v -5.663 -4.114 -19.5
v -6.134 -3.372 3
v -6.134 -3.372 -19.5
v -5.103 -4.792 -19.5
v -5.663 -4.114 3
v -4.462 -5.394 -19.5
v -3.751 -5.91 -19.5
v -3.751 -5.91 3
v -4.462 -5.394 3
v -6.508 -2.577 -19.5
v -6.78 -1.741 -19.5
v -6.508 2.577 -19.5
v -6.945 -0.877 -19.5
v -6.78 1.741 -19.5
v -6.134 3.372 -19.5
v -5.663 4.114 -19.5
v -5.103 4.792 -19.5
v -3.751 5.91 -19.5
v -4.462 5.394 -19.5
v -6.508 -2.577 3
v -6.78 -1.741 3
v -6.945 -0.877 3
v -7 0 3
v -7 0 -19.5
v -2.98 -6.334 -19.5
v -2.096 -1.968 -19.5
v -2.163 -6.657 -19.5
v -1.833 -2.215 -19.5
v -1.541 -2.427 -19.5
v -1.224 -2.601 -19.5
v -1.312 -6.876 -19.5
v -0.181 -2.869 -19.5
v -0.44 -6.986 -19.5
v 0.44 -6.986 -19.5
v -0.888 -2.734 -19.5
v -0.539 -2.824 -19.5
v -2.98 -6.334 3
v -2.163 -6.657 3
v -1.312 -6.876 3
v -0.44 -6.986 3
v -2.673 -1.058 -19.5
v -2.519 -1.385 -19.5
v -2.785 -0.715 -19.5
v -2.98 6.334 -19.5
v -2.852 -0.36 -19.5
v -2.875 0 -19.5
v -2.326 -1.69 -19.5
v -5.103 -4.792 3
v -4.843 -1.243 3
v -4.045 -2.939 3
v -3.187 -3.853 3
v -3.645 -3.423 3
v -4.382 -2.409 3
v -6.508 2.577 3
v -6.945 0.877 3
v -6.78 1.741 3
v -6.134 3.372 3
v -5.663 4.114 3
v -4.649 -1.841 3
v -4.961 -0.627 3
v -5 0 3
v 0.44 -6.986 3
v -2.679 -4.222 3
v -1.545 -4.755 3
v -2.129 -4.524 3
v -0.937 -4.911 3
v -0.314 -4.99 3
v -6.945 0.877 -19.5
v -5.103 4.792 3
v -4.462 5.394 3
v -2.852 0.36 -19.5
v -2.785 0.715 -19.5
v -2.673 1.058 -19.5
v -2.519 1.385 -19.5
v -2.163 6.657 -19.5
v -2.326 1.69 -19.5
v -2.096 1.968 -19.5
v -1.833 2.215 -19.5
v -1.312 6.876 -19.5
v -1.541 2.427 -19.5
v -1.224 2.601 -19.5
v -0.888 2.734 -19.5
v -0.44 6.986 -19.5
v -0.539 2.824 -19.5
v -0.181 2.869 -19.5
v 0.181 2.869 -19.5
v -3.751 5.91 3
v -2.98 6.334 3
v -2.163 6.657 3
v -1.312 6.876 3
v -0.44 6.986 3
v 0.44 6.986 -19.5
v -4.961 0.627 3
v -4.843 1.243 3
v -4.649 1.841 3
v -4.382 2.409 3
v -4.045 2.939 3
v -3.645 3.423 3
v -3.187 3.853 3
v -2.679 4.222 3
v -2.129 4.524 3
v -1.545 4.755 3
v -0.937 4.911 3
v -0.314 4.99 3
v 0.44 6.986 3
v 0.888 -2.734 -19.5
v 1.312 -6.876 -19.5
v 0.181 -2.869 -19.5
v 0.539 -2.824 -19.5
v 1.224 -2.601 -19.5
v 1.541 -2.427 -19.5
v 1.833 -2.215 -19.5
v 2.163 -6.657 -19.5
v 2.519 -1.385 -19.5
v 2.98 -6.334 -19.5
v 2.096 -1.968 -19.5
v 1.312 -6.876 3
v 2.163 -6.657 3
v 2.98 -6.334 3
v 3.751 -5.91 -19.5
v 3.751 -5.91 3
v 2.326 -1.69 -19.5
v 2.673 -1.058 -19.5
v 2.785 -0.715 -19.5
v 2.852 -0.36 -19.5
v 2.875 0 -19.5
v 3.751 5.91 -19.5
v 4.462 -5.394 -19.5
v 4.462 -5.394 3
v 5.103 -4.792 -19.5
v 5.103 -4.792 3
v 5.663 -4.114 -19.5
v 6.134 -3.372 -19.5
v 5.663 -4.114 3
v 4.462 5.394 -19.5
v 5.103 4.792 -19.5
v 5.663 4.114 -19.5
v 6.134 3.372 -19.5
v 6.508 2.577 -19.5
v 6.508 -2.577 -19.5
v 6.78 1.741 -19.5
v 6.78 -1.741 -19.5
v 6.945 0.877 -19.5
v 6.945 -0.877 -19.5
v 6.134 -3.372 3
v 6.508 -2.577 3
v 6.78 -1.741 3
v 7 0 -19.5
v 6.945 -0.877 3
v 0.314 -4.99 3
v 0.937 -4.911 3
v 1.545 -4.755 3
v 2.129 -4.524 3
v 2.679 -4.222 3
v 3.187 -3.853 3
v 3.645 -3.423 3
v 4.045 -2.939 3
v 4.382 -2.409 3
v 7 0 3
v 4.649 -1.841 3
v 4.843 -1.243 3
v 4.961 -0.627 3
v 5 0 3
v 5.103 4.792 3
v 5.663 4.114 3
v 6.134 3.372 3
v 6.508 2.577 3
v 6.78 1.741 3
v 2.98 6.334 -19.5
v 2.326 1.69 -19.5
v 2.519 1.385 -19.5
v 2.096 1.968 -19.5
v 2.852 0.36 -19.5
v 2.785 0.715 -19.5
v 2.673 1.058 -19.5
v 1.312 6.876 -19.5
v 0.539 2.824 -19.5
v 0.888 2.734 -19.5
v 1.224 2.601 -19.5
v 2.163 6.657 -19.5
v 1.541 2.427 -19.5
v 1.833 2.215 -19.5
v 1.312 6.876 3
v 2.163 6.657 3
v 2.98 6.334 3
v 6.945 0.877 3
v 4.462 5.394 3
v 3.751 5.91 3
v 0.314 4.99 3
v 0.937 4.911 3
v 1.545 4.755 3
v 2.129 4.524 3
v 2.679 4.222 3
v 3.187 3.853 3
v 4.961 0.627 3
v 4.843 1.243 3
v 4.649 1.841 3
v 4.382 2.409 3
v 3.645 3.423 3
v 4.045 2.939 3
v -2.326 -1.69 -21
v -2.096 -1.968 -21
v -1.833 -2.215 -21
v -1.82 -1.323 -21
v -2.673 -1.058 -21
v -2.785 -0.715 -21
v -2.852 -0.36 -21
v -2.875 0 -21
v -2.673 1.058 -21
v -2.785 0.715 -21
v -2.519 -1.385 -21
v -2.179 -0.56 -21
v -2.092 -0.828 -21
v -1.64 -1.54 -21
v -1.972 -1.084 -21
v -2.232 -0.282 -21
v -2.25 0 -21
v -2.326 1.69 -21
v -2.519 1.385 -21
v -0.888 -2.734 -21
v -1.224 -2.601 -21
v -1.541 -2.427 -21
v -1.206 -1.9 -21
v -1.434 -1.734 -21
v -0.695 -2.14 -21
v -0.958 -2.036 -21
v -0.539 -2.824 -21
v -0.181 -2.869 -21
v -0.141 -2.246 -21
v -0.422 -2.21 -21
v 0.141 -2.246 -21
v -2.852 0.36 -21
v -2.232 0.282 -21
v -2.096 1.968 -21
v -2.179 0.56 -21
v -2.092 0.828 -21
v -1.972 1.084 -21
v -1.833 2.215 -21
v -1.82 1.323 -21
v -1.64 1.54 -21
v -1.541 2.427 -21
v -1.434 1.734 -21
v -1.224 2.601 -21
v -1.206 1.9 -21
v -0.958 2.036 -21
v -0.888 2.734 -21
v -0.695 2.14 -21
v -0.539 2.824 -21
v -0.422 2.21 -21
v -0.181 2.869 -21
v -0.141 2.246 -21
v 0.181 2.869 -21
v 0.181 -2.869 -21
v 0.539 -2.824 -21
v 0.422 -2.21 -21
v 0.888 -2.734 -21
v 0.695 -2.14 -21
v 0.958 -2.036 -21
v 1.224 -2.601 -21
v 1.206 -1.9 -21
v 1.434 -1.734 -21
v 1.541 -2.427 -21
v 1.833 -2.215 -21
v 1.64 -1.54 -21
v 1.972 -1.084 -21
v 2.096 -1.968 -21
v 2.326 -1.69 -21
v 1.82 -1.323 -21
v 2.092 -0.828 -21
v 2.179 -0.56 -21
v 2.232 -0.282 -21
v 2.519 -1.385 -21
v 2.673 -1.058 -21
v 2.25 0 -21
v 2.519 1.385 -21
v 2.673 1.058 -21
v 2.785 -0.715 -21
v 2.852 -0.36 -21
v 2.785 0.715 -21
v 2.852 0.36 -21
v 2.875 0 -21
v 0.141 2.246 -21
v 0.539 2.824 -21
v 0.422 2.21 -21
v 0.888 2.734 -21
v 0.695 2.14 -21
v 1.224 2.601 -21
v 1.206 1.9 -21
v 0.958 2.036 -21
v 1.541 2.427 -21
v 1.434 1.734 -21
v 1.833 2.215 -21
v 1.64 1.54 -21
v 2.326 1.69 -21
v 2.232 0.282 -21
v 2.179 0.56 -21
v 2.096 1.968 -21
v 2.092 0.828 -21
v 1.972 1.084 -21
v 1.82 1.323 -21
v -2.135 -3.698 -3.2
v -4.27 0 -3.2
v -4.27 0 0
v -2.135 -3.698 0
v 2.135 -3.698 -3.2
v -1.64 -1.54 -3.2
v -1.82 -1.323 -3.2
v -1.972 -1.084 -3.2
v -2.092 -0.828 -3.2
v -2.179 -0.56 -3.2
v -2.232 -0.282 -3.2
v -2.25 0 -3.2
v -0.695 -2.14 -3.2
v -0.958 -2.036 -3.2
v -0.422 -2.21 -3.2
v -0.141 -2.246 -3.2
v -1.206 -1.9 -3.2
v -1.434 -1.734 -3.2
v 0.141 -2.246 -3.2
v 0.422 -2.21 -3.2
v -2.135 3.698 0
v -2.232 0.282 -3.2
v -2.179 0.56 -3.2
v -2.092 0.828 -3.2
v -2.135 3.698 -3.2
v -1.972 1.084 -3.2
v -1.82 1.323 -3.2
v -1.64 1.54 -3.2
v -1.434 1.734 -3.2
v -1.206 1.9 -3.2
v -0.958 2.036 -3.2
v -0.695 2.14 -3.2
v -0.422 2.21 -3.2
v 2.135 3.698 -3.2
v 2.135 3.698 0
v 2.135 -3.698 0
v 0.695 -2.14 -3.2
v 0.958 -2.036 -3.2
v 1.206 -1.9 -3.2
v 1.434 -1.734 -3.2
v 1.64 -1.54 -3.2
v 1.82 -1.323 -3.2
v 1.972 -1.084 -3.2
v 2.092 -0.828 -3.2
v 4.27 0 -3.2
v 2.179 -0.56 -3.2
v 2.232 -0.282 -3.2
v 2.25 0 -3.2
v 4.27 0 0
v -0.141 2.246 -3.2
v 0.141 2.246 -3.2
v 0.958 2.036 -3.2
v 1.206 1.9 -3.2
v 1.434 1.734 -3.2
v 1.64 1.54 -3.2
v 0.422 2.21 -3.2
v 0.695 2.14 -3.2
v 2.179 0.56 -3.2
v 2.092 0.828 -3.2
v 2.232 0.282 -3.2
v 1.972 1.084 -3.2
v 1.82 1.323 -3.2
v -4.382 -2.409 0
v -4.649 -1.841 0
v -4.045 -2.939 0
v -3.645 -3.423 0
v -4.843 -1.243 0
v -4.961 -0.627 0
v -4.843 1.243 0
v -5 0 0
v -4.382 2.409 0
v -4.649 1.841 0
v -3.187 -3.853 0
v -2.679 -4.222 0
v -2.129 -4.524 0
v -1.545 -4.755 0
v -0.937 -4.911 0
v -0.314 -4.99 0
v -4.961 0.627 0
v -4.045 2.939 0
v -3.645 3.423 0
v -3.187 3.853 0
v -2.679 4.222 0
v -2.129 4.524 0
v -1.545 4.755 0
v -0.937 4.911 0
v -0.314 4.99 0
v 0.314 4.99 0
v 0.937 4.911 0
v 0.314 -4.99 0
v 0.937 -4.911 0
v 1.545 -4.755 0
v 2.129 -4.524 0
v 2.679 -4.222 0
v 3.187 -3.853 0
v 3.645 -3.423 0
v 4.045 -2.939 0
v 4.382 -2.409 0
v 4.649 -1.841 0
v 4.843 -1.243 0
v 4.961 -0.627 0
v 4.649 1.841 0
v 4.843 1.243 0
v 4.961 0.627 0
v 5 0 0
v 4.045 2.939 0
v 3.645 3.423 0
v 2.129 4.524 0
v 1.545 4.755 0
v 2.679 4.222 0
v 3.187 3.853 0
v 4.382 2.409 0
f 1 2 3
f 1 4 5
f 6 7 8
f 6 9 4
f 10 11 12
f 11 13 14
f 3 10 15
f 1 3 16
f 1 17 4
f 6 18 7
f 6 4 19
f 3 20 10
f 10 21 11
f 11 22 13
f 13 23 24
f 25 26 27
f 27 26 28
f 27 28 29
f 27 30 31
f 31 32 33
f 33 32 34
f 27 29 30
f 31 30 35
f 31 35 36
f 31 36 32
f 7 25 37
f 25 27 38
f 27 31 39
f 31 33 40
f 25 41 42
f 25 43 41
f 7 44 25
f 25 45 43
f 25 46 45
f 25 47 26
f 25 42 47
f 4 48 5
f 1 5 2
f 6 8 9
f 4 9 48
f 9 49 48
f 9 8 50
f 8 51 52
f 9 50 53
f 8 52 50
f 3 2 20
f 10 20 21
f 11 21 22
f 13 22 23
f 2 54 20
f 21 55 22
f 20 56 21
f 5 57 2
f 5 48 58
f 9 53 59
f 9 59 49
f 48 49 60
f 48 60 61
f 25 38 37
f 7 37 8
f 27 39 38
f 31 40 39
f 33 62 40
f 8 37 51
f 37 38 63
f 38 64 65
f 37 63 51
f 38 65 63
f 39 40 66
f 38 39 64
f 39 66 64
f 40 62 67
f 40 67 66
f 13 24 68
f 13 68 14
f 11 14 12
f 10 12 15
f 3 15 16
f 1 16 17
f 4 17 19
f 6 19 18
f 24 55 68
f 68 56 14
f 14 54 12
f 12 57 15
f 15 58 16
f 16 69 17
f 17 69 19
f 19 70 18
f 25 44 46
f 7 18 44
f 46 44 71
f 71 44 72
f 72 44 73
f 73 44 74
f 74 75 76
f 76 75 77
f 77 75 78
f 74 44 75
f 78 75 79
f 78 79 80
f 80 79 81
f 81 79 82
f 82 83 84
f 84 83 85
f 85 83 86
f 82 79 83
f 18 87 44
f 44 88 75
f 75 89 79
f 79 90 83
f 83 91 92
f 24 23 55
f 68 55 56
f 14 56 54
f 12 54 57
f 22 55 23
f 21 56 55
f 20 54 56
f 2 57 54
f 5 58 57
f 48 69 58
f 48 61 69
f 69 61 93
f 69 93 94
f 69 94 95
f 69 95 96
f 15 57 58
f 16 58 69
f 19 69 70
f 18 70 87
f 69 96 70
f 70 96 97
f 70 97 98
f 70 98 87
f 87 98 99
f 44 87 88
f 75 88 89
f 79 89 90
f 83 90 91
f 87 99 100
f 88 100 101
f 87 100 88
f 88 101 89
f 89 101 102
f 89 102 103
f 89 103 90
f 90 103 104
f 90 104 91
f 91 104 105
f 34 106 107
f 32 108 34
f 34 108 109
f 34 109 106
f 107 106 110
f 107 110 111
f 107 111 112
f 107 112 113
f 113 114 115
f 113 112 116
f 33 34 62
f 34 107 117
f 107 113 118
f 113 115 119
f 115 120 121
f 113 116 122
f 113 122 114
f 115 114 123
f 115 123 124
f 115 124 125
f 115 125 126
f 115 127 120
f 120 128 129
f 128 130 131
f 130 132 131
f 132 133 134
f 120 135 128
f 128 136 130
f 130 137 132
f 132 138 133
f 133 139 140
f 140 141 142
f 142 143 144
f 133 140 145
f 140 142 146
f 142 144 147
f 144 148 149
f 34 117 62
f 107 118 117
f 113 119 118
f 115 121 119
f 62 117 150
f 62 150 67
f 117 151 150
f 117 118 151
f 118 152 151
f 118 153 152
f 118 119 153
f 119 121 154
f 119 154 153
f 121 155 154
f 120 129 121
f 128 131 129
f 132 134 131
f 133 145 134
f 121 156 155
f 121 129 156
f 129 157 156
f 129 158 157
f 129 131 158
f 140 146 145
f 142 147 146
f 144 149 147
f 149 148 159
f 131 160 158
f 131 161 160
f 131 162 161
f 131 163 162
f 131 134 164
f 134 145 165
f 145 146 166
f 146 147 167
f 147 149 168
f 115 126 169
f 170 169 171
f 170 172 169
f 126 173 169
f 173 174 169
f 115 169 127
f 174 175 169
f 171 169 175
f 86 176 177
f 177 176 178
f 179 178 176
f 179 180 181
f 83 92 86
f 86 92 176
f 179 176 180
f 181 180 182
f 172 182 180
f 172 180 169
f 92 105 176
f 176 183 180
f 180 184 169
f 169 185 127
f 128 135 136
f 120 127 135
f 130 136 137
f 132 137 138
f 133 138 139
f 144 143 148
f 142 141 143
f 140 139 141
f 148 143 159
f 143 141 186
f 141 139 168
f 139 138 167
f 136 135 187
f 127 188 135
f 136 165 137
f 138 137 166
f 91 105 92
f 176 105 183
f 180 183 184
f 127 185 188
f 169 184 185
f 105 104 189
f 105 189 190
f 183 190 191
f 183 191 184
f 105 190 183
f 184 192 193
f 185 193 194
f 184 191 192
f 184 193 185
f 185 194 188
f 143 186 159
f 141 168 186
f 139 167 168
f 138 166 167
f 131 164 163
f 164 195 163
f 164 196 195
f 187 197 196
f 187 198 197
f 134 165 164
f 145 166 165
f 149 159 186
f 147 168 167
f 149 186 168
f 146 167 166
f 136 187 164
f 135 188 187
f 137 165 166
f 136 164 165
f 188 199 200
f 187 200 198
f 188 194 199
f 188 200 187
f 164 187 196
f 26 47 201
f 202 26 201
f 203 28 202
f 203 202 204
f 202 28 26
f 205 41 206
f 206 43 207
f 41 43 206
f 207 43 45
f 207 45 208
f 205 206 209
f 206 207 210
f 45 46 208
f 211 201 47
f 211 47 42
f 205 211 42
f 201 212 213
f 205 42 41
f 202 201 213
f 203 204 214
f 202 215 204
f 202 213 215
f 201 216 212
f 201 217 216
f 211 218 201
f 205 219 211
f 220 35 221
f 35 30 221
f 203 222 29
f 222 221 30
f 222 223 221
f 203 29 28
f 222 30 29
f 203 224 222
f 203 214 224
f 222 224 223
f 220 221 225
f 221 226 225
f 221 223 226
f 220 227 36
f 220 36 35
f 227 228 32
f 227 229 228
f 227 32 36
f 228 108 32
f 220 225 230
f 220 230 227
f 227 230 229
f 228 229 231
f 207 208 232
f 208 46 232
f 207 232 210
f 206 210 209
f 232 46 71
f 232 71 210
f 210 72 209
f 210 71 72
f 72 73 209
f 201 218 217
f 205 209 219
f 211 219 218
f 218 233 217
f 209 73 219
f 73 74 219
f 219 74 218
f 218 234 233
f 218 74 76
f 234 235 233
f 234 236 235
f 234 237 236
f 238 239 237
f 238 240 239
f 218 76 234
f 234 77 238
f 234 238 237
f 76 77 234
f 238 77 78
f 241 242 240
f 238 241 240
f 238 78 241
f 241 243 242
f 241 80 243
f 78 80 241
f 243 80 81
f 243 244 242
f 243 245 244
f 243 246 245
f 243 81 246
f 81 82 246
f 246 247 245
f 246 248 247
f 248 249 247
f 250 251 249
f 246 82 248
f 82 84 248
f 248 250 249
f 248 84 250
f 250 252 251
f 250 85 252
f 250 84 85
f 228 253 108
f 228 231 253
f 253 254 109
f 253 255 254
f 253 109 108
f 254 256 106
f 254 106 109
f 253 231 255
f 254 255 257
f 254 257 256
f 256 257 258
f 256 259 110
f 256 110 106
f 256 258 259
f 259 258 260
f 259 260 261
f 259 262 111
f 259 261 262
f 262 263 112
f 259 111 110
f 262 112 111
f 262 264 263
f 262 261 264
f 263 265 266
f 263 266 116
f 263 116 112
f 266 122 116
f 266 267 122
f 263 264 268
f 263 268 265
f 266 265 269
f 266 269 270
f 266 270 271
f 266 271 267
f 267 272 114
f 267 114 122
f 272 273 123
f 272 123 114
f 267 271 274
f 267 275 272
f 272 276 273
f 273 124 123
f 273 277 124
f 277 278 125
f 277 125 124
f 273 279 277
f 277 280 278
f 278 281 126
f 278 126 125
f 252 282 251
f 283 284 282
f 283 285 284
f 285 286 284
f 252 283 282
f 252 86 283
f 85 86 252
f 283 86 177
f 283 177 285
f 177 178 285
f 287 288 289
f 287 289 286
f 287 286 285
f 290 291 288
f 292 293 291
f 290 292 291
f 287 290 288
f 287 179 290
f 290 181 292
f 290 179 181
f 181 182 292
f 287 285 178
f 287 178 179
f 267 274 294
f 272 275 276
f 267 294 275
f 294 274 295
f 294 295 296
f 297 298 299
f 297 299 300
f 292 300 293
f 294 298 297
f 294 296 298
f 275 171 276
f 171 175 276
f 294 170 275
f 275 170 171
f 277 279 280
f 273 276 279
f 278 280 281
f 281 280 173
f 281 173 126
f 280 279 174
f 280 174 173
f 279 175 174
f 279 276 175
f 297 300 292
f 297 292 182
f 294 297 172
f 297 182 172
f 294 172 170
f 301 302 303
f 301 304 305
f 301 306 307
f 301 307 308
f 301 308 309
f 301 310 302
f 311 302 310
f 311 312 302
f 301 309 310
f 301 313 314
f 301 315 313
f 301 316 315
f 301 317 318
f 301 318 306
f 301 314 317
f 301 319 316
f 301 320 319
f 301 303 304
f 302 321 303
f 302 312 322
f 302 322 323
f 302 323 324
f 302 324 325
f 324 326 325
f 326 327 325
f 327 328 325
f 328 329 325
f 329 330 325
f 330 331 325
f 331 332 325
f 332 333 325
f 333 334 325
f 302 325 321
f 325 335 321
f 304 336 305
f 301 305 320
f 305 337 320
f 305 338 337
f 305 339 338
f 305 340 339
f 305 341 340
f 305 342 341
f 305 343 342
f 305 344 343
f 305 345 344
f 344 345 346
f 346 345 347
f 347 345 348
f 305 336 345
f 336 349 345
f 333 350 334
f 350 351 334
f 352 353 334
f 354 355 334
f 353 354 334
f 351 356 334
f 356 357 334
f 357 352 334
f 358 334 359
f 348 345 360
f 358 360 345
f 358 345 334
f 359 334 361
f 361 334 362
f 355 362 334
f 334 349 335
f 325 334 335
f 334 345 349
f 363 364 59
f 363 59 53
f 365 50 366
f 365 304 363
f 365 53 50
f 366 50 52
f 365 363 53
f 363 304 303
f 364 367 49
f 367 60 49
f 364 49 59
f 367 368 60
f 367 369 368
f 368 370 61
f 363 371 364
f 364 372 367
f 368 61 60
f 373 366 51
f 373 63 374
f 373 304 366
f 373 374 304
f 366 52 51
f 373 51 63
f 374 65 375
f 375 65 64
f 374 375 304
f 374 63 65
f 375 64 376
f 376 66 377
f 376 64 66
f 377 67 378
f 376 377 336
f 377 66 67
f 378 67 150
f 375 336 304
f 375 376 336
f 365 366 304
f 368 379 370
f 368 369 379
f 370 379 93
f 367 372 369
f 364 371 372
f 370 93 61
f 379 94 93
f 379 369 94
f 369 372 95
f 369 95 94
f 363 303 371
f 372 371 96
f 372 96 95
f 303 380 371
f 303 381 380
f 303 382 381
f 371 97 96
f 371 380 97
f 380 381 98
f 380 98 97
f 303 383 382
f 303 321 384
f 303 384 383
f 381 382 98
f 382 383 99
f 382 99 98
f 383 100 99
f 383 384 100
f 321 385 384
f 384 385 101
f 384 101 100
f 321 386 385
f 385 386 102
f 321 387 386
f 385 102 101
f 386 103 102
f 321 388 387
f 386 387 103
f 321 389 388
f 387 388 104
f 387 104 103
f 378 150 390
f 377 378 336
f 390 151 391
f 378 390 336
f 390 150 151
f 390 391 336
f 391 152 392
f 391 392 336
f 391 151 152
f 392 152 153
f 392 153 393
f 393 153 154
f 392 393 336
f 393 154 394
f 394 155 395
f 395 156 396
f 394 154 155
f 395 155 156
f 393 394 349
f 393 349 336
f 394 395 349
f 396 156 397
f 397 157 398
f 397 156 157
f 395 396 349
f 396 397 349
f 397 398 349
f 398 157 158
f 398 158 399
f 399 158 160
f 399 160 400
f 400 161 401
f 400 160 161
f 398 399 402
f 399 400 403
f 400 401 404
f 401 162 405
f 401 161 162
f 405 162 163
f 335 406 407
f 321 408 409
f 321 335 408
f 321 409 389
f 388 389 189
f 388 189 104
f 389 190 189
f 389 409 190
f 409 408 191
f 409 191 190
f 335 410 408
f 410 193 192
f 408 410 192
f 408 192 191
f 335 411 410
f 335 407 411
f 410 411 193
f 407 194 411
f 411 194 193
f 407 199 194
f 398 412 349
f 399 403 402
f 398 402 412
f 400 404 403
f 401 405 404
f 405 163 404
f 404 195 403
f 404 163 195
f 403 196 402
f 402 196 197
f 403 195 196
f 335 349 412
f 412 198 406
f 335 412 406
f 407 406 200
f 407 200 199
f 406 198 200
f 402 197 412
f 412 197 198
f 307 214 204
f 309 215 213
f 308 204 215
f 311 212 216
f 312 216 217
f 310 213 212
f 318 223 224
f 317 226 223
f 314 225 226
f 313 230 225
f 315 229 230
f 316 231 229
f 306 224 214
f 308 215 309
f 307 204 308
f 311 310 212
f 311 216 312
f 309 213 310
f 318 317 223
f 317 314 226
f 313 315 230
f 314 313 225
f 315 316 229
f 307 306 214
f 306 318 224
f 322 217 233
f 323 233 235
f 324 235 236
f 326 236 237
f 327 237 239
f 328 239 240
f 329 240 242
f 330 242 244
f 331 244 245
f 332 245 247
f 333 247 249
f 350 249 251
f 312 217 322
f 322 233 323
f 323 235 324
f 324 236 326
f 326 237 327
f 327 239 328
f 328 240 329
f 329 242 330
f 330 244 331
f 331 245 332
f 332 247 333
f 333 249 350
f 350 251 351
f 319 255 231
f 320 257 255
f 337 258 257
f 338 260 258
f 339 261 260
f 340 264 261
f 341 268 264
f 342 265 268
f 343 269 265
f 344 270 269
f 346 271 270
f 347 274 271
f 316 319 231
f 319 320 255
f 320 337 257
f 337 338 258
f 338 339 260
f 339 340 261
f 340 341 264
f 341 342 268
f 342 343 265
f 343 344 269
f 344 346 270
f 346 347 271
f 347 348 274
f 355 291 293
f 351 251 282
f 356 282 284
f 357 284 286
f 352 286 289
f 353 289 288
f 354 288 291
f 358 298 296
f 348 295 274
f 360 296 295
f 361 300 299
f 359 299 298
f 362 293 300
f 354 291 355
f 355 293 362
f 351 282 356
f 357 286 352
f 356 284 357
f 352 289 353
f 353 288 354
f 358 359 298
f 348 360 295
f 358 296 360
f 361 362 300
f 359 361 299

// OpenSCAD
$fn = 50;

difference() {
	union() {
		translate(v = [0, 0, -19.5]) {
			cylinder(h = 22.5, r = 7.0);
		}
		#translate(v = [0, 0, -21.0]) {
			cylinder(h = 21, r = 2.875);
		}
	}
	union() {
		translate(v = [0, 0, 0]) {
			rotate(a = [0, 0, 0]) {
				difference() {
					union() {
						translate(v = [0, 0, -3.2]) {
							linear_extrude(height = 3.2) {
								polygon(points = [[4.2698, 0.0], [2.1349000000000005, 3.697755269078796], [-2.134899999999999, 3.6977552690787965], [-4.2698, 5.228996902999369e-16], [-2.134900000000002, -3.6977552690787956], [2.1348999999999974, -3.697755269078798]]);
							}
						}
					}
					union();
				}
			}
		}
		#cylinder(h = 3, r = 5.0);
		#translate(v = [0, 0, -100.0]) {
			cylinder(h = 200, r = 2.25);
		}
	}
}
